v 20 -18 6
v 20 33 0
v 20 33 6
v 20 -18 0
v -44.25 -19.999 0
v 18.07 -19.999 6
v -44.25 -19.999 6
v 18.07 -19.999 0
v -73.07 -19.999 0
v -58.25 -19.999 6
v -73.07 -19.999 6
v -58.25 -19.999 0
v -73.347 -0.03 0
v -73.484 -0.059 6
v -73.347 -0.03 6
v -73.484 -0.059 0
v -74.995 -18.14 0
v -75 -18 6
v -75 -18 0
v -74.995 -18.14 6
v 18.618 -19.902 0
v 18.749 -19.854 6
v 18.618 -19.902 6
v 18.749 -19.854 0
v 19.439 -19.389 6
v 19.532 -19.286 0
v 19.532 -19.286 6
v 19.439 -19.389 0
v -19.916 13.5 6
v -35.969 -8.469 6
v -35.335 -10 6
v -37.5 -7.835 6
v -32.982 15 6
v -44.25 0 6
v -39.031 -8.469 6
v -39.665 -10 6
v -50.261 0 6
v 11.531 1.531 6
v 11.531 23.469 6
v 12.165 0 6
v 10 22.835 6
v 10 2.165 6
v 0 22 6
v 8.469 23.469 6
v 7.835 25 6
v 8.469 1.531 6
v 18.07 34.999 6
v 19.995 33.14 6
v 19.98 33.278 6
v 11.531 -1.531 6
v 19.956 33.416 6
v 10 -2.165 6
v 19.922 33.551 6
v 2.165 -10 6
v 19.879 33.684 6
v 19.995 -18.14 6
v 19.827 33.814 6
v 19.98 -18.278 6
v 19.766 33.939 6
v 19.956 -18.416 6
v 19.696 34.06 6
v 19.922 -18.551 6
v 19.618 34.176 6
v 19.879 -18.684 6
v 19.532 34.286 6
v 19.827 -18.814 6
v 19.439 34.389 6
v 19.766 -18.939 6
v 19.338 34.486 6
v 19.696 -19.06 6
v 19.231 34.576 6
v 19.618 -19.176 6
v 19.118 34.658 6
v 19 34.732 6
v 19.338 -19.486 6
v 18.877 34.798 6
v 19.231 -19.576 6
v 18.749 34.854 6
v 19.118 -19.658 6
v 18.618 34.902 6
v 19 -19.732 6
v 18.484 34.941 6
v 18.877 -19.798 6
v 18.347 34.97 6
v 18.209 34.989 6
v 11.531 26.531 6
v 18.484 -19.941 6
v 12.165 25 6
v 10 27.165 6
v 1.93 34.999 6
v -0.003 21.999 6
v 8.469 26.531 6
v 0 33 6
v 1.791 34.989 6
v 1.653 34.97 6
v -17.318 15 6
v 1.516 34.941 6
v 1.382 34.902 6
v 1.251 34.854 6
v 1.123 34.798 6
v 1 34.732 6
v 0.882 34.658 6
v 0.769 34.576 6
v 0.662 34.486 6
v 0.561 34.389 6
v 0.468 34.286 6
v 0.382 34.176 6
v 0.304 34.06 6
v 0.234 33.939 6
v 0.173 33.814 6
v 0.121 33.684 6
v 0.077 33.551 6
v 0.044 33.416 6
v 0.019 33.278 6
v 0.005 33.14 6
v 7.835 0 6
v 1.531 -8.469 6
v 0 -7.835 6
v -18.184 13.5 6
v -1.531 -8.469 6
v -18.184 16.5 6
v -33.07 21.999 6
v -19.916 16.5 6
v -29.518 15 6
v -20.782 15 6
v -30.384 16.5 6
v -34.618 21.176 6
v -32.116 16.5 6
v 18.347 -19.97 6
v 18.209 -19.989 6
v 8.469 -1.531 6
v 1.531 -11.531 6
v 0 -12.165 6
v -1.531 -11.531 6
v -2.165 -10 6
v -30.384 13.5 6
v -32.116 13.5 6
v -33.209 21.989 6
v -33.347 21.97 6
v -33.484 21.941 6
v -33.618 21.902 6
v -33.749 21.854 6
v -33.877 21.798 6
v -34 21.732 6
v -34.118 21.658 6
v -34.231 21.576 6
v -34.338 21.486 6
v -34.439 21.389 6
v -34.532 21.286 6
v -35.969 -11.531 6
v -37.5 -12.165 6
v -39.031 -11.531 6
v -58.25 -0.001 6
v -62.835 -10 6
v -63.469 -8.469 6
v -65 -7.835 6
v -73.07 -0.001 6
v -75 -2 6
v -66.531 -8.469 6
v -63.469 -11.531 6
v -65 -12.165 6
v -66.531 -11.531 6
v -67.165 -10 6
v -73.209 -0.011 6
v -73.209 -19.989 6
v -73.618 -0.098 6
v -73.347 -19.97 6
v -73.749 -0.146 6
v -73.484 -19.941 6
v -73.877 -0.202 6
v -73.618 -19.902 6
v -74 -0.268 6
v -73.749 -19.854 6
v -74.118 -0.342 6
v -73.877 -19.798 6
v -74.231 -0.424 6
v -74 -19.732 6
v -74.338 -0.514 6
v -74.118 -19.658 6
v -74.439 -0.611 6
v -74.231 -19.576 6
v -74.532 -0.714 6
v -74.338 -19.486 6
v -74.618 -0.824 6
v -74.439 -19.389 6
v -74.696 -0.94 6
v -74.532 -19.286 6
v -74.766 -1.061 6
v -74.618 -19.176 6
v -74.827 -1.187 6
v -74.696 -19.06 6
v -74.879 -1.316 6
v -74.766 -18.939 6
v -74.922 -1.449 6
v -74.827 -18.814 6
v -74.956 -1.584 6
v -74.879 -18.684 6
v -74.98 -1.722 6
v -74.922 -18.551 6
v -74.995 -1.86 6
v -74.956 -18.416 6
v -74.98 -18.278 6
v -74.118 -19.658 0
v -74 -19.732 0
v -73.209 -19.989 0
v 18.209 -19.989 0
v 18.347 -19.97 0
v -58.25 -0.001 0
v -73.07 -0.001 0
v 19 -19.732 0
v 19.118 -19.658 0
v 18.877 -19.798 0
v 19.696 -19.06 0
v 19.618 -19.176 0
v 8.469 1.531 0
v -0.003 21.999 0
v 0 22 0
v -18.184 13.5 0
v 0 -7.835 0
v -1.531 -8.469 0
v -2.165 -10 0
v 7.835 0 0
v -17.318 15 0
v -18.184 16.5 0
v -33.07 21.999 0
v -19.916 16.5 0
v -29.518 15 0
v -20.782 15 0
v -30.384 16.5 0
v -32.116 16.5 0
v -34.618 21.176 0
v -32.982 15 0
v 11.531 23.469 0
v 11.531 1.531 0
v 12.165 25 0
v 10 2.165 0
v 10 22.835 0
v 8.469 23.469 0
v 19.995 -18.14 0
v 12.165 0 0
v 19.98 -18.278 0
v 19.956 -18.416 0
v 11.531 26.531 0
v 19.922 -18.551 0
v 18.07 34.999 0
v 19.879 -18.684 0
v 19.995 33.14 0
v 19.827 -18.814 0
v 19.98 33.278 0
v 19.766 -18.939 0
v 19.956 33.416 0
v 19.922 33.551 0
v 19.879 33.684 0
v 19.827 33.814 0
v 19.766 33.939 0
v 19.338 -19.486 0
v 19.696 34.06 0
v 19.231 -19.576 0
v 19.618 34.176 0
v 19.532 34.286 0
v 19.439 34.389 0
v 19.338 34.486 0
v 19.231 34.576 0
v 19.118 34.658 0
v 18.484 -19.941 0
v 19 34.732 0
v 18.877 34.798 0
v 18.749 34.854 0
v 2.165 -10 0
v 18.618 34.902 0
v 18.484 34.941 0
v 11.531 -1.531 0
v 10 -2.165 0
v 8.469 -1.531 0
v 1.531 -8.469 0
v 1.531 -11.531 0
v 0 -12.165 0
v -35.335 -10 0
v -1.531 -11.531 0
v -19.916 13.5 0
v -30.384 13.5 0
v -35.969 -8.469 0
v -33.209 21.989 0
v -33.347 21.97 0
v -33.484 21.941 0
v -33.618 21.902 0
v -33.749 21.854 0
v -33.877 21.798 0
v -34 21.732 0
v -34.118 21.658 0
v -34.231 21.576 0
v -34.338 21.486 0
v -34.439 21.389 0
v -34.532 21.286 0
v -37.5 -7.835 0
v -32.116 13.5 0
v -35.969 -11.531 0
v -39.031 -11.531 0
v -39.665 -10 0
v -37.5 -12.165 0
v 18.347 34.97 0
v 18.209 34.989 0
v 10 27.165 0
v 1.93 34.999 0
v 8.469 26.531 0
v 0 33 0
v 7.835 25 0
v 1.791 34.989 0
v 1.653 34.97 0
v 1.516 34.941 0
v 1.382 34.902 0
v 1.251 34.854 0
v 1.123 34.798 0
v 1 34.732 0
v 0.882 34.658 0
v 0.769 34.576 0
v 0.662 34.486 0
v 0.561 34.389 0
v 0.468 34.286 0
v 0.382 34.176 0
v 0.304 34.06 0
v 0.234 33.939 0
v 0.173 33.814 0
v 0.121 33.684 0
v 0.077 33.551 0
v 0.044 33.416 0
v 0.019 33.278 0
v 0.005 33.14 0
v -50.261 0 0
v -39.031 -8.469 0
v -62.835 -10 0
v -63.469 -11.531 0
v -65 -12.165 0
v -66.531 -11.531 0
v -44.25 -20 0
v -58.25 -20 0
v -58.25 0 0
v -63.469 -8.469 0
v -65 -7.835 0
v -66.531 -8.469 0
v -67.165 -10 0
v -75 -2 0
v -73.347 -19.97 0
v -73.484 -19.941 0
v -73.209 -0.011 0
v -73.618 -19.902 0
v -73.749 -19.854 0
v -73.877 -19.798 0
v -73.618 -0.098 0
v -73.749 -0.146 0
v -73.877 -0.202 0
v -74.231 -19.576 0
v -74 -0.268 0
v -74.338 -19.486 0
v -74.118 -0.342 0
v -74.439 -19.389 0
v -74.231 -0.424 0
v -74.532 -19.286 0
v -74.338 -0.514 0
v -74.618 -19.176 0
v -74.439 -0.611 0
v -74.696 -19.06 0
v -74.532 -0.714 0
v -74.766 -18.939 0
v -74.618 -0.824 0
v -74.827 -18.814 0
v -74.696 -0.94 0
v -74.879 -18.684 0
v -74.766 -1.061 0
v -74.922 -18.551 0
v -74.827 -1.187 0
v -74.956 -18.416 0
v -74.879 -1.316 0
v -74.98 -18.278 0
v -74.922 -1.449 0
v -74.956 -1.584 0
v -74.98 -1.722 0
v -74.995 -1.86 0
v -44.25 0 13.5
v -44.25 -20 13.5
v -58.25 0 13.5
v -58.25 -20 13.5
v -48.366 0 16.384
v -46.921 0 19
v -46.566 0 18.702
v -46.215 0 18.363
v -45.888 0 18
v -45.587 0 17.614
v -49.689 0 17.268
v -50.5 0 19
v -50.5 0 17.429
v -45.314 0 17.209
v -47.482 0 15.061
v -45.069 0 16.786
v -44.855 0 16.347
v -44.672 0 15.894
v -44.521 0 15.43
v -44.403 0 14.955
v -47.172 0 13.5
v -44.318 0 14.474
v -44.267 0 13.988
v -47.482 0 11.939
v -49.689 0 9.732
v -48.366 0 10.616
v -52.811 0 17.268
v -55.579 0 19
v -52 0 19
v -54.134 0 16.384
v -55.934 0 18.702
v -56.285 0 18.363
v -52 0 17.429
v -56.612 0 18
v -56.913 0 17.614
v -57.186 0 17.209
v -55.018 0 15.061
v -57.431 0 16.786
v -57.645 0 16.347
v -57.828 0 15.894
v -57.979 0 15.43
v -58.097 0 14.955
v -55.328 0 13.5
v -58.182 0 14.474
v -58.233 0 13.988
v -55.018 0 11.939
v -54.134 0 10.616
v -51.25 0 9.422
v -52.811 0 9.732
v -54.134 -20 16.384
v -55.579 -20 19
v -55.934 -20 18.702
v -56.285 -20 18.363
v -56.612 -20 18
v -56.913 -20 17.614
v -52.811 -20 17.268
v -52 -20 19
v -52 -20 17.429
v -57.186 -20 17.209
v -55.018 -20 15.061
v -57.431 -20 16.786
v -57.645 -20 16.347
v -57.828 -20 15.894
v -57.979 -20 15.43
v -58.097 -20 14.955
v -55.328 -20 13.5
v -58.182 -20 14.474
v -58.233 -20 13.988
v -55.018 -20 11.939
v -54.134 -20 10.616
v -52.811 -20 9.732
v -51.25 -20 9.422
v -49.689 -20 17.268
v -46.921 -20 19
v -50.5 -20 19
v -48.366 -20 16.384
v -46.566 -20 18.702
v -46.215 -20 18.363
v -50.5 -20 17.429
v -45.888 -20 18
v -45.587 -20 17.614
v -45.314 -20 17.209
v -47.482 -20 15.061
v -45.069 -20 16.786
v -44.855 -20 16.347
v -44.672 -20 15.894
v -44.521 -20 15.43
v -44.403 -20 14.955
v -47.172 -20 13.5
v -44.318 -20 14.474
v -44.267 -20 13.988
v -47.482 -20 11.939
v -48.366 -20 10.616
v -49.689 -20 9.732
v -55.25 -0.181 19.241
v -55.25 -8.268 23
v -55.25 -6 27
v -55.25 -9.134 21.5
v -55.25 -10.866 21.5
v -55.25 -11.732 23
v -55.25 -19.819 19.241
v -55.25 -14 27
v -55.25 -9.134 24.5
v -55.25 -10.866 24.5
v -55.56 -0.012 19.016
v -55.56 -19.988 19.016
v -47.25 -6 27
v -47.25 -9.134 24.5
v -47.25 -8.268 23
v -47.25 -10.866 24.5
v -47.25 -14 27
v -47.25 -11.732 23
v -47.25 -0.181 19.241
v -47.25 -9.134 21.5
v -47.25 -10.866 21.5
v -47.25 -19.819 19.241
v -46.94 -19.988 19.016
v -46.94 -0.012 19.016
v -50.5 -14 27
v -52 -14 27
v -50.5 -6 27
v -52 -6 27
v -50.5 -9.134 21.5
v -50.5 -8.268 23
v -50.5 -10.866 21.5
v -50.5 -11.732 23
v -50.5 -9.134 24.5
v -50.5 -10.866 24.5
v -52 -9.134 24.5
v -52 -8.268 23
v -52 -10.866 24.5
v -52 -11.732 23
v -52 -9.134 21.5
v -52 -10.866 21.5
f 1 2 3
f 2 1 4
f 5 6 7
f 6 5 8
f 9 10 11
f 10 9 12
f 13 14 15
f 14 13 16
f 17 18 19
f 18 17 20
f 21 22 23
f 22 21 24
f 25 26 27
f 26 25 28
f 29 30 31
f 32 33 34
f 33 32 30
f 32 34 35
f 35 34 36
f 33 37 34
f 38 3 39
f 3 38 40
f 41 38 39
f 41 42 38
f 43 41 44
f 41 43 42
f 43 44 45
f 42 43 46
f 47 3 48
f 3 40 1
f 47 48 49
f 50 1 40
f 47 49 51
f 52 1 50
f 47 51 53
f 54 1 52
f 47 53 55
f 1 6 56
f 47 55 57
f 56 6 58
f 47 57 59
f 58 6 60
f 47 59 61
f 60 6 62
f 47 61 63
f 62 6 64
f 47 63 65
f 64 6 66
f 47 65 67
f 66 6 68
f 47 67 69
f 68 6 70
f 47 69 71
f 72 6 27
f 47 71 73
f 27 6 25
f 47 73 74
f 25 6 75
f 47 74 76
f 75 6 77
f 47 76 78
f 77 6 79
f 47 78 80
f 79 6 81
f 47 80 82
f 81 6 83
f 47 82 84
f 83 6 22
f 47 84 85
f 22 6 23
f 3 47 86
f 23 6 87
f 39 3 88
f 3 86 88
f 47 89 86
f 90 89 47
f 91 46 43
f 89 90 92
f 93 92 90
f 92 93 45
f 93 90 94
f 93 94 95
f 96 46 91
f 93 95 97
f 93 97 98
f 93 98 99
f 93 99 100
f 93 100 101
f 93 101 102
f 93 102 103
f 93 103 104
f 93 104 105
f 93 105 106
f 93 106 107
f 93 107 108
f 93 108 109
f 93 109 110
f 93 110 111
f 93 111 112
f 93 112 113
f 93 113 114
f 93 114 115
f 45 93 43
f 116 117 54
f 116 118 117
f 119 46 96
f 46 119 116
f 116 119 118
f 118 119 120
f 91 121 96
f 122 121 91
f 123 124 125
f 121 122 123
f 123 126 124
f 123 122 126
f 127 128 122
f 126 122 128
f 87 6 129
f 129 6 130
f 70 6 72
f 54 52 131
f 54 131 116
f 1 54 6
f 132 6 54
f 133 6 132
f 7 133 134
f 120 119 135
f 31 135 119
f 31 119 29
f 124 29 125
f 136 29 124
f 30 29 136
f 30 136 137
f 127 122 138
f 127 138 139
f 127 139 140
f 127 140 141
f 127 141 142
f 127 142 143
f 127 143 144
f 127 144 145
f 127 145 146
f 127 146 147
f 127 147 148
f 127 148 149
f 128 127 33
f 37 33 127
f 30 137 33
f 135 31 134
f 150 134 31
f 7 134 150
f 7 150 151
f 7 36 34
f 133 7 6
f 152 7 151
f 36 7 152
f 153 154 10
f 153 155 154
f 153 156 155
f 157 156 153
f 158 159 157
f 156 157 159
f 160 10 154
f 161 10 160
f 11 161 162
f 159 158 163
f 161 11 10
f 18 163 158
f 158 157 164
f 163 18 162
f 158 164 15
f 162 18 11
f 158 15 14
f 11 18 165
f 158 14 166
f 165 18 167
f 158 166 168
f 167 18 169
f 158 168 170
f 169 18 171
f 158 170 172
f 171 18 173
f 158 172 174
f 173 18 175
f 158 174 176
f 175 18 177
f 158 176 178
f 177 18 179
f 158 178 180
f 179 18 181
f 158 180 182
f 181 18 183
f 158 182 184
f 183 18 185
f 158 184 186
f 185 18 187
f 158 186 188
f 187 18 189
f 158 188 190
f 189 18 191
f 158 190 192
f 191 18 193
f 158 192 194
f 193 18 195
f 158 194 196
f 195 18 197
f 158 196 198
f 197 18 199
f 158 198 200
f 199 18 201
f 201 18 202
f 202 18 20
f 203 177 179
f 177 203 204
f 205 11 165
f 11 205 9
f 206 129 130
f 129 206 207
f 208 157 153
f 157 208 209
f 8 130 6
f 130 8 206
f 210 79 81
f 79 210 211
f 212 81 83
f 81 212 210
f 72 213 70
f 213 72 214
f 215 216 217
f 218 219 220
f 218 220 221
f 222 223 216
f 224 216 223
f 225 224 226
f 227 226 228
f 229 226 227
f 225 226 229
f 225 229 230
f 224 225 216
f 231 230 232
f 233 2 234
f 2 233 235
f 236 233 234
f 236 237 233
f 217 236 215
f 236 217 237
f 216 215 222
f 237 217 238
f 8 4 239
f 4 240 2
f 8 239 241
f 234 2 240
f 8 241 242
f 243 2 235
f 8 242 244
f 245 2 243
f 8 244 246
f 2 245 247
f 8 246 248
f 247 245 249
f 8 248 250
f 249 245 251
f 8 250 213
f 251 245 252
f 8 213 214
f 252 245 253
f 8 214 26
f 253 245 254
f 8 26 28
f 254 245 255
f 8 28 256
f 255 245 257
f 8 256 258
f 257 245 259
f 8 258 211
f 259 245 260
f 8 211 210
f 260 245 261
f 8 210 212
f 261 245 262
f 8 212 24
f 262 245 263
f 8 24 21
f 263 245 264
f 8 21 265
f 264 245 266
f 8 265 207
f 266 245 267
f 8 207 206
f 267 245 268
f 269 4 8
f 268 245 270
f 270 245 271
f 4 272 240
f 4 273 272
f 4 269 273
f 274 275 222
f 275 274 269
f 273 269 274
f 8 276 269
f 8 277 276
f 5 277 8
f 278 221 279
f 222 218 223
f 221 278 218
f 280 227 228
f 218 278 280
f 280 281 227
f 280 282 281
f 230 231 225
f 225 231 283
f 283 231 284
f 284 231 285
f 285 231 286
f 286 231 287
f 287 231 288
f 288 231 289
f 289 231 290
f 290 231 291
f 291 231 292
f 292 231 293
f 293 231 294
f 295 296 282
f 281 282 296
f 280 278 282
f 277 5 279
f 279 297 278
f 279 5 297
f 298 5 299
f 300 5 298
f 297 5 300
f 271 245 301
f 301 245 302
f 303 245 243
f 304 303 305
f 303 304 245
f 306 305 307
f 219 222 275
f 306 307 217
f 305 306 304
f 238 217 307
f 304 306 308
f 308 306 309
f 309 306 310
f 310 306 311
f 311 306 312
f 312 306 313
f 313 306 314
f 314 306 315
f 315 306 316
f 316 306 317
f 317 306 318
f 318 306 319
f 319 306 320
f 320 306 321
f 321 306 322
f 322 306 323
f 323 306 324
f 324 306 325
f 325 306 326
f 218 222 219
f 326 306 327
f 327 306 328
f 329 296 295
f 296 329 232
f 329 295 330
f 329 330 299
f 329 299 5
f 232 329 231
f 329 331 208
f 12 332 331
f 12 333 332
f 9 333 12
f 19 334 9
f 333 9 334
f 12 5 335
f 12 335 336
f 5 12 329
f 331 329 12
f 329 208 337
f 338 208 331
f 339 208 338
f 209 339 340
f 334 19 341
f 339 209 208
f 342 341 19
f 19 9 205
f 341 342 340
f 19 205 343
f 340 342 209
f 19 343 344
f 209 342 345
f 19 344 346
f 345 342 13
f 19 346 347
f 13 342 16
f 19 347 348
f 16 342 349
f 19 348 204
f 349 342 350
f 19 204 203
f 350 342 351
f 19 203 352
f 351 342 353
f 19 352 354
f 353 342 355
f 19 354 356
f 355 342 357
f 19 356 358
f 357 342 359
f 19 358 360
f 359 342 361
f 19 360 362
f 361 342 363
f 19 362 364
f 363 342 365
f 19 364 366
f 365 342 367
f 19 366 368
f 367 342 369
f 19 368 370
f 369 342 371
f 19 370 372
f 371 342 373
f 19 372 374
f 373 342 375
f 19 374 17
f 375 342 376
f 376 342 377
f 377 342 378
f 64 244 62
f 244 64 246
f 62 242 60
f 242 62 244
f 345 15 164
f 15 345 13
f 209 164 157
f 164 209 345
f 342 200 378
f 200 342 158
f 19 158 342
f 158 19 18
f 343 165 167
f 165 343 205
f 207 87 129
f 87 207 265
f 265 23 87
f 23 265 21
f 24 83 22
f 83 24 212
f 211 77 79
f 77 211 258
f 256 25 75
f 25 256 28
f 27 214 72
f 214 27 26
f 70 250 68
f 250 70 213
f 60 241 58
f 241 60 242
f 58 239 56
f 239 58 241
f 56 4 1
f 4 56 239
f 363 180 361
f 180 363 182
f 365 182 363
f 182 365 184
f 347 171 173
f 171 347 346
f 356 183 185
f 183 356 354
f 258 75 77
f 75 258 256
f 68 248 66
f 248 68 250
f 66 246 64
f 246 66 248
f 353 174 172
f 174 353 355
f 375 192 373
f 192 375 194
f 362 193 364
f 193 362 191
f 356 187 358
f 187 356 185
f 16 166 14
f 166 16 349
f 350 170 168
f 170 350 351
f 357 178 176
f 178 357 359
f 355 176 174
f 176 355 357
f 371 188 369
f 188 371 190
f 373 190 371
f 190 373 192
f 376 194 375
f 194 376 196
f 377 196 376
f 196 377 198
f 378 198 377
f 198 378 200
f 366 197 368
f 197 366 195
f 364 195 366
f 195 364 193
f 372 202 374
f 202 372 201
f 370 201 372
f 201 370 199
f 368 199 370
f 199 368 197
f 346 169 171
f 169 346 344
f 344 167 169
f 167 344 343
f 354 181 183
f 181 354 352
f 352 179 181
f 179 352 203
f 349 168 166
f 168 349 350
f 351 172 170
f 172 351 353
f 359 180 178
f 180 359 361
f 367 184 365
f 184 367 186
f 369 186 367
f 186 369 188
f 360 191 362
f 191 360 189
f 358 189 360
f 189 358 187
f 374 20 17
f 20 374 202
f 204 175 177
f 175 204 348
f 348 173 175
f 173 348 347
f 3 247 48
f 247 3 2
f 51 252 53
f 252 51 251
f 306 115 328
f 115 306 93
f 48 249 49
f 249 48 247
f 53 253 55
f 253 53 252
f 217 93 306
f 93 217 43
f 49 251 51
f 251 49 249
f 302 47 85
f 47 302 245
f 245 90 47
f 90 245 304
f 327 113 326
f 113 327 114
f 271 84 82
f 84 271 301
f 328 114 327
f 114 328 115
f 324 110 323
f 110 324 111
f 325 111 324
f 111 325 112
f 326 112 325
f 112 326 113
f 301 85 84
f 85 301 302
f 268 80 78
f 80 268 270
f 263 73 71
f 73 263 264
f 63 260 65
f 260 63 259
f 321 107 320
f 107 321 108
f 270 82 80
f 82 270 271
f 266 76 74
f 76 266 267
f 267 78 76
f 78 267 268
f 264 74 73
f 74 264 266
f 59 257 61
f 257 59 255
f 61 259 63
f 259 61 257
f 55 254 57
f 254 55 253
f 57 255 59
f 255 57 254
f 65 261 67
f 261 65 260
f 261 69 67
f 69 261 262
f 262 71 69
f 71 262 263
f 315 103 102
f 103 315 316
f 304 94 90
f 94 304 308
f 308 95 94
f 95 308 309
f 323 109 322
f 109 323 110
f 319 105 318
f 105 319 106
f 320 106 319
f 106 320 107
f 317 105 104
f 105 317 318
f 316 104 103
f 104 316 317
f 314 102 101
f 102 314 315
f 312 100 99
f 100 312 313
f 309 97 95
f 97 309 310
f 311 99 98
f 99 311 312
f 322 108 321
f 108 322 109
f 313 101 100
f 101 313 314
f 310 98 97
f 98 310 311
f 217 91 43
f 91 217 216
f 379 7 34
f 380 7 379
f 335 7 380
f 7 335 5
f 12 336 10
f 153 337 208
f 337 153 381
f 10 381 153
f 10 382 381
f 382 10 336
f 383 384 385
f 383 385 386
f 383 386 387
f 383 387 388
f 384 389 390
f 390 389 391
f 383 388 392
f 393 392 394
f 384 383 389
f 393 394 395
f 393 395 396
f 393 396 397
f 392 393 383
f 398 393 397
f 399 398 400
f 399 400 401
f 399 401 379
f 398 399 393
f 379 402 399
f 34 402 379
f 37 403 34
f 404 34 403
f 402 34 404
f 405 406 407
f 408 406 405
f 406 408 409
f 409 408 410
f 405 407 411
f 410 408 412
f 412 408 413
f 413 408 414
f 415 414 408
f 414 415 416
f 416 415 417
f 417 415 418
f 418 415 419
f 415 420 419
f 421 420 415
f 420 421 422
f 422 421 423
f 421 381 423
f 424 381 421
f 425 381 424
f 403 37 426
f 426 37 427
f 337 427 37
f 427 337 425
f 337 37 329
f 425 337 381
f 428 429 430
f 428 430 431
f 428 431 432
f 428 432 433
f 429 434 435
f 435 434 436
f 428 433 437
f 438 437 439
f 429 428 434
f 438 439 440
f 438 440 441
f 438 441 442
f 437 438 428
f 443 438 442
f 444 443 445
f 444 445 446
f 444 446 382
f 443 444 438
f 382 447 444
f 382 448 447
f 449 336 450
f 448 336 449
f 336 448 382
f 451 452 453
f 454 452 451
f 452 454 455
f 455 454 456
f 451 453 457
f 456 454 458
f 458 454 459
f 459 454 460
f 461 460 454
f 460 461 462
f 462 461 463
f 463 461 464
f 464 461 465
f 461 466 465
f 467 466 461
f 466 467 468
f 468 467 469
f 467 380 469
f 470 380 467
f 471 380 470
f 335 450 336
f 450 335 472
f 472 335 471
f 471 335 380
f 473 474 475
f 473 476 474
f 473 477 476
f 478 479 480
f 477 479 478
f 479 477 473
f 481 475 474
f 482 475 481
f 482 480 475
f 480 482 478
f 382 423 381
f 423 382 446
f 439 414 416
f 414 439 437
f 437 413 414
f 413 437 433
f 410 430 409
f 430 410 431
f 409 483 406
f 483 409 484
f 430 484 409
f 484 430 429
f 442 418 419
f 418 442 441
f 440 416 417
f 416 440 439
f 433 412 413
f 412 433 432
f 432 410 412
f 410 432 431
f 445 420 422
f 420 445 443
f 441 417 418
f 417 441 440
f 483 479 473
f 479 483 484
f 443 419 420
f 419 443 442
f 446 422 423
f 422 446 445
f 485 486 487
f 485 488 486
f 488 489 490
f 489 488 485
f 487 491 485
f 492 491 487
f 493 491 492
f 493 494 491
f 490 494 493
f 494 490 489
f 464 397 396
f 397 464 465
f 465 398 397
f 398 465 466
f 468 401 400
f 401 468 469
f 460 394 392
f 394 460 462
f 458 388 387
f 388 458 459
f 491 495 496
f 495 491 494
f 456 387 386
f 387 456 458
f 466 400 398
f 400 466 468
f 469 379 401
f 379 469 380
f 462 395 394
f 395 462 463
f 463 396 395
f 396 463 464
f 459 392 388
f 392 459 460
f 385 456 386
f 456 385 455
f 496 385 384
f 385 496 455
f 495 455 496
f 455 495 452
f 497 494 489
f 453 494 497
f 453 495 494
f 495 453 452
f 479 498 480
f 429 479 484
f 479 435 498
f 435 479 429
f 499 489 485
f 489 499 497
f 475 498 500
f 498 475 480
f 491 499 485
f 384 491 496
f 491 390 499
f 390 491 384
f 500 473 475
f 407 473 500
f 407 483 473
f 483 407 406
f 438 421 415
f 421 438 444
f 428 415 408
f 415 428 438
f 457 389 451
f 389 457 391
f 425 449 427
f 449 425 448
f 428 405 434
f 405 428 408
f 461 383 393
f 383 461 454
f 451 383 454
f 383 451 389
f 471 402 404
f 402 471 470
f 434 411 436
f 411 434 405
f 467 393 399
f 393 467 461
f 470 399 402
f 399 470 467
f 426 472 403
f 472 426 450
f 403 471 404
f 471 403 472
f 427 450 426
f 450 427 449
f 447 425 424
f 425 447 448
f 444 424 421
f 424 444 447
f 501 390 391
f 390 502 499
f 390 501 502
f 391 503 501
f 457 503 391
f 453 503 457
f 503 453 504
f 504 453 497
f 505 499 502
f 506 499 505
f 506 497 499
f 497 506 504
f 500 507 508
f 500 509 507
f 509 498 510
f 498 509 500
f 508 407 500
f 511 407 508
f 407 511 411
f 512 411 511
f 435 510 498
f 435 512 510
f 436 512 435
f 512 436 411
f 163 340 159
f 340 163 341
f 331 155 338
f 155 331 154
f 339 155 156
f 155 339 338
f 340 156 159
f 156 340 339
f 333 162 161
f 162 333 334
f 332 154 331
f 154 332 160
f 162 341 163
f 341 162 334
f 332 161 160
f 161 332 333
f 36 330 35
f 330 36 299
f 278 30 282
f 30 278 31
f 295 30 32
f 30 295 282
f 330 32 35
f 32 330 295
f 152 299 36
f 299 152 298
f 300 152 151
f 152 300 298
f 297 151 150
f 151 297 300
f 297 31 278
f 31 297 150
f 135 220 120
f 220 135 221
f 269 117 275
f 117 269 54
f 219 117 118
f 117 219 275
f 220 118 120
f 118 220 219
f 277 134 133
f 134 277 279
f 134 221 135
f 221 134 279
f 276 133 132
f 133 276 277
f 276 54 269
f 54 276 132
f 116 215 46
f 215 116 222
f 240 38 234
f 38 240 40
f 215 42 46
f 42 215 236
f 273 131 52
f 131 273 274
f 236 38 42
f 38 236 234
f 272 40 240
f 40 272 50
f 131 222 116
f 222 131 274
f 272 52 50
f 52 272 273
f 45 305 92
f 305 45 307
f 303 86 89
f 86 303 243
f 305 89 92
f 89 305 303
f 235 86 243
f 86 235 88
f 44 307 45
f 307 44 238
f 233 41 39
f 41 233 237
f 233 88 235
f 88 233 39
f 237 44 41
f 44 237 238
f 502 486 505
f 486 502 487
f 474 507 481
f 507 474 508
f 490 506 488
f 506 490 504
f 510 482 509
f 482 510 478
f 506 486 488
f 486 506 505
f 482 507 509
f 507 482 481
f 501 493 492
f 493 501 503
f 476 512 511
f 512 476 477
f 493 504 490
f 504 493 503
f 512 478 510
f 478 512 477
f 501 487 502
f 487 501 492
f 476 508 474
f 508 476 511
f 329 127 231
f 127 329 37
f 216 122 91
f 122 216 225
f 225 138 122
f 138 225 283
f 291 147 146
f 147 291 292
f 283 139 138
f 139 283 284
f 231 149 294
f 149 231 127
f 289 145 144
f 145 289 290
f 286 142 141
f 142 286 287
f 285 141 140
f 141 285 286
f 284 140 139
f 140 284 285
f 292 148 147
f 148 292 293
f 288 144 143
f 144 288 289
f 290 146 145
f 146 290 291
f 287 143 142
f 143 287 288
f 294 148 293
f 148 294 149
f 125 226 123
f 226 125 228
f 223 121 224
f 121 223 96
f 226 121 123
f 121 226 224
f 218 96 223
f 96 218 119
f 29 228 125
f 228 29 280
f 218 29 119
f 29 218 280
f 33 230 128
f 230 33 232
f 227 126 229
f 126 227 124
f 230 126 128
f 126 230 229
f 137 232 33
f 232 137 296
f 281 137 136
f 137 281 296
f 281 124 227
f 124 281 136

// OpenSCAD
// file: Y-BarMount.scad
// A mount for the y-axis bar.

use<polyhole.scad>

YMount();

module YMount()
{
    difference()
    {
        union()
        {
            hull()
            {
                translate([-18, -18, 0])
                    cylinder(h = 6, r = 2, $fn = 90);
                translate([-18, -2, 0])
                    cylinder(h = 6, r = 2, $fn = 90);
                translate([73, -2, 0])
                    cylinder(h = 6, r = 2, $fn = 90);
                translate([73, -18, 0])
                    cylinder(h = 6, r = 2, $fn = 90);
            }
            hull()
            {
                translate([-18, -18, 0])
                    cylinder(h = 6, r = 2, $fn = 90);
                translate([-2, -18, 0])
                    cylinder(h = 6, r = 2, $fn = 90);
                translate([-2, 33, 0])
                    cylinder(h = 6, r = 2, $fn = 90);
                translate([-18, 33, 0])
                    cylinder(h = 6, r = 2, $fn = 90);
            }
            linear_extrude(height = 6)
                polygon([[-5, -5], [50, 0], [0, 22]]);
            translate([51.25, -10, 19])
                cube([14, 20, 38], center = true);
        }
        translate([51.25, 0, 13.5])
            rotate([90, 0, 0])
                polyhole(20, 4);
        difference()
        {
            translate([58.25, -10, 26.5])
                cube([6, 20, 26], center = true);
            translate([51.25, 0, 13.5])
                rotate([90, 0, 0])
                    cylinder(h = 20, r = 7, $fn = 90);
        }
        difference()
        {
            translate([44.25, -10, 26.5])
                cube([6, 20, 26], center = true);
            translate([51.25, 0, 13.5])
                rotate([90, 0, 0])
                    cylinder(h = 20, r = 7, $fn = 90);
        }
        difference()
        {
            translate([51.25, -10, 32])
                cube([14, 20, 26], center = true);
            hull()
            {
                translate([51.25, -10, 18])
                    cube([14, 20, 2], center = true);
                translate([51.25, -10, 26])
                    cube([14, 8, 2], center = true);
            }
        }
        translate([51.25, -10, 26.5])
                cube([1.5, 20, 26], center = true);
        translate([65, -10, 0])
            polyhole(6, 2);
        translate([37.5, -10, 0])
            polyhole(6, 2);
        translate([0, -10, 0])
            polyhole(6, 2);
        translate([-10, 0, 0])
            polyhole(6, 2);
        translate([-10, 25, 0])
            polyhole(6, 2);
        translate([46, -10, 23])
            rotate([90, 0, 90])
                polyhole(14, 1.5);
    }
}
// file: polyhole.scad
// The Cylinder is dead! Long live the Cylinder!
// A module for a polyhole by radius, based on Nophead's work.

module polyhole(h, r, cent = false)
{
    n = max(round(4 * r), 3);
    cylinder(h = h, r = r / cos(180 / n), $fn = n, center = cent);
}
// file: Y-BarMountBearings.scad
//The y-axis mount with bearing holes.

use<polyhole.scad>
use<Y-BarMount.scad>

YMountBearing();

module YMountBearing()
{
    difference()
    {
        union()
        {
            YMount();
            hull()
            {
                cylinder(h = 6, r = 2, $fn = 90);
                translate([0, 20, 0])
                    cylinder(h = 6, r = 2, $fn = 90);
                translate([33, 20, 0])
                    cylinder(h = 6, r = 2, $fn = 90);
                translate([50, -2, 3])
                    cube([2, 2, 6], center = true);
            }
        }
        translate([19.05, 15, 0])
            polyhole(6, 1.5);
        translate([31.25, 15, 0])
            polyhole(6, 1.5);
    }
}
// main file
// Uggghhhhhhhh...

use<Y-BarMountBearings.scad>

scale([-1, 1, 1])
    YMountBearing();
    
